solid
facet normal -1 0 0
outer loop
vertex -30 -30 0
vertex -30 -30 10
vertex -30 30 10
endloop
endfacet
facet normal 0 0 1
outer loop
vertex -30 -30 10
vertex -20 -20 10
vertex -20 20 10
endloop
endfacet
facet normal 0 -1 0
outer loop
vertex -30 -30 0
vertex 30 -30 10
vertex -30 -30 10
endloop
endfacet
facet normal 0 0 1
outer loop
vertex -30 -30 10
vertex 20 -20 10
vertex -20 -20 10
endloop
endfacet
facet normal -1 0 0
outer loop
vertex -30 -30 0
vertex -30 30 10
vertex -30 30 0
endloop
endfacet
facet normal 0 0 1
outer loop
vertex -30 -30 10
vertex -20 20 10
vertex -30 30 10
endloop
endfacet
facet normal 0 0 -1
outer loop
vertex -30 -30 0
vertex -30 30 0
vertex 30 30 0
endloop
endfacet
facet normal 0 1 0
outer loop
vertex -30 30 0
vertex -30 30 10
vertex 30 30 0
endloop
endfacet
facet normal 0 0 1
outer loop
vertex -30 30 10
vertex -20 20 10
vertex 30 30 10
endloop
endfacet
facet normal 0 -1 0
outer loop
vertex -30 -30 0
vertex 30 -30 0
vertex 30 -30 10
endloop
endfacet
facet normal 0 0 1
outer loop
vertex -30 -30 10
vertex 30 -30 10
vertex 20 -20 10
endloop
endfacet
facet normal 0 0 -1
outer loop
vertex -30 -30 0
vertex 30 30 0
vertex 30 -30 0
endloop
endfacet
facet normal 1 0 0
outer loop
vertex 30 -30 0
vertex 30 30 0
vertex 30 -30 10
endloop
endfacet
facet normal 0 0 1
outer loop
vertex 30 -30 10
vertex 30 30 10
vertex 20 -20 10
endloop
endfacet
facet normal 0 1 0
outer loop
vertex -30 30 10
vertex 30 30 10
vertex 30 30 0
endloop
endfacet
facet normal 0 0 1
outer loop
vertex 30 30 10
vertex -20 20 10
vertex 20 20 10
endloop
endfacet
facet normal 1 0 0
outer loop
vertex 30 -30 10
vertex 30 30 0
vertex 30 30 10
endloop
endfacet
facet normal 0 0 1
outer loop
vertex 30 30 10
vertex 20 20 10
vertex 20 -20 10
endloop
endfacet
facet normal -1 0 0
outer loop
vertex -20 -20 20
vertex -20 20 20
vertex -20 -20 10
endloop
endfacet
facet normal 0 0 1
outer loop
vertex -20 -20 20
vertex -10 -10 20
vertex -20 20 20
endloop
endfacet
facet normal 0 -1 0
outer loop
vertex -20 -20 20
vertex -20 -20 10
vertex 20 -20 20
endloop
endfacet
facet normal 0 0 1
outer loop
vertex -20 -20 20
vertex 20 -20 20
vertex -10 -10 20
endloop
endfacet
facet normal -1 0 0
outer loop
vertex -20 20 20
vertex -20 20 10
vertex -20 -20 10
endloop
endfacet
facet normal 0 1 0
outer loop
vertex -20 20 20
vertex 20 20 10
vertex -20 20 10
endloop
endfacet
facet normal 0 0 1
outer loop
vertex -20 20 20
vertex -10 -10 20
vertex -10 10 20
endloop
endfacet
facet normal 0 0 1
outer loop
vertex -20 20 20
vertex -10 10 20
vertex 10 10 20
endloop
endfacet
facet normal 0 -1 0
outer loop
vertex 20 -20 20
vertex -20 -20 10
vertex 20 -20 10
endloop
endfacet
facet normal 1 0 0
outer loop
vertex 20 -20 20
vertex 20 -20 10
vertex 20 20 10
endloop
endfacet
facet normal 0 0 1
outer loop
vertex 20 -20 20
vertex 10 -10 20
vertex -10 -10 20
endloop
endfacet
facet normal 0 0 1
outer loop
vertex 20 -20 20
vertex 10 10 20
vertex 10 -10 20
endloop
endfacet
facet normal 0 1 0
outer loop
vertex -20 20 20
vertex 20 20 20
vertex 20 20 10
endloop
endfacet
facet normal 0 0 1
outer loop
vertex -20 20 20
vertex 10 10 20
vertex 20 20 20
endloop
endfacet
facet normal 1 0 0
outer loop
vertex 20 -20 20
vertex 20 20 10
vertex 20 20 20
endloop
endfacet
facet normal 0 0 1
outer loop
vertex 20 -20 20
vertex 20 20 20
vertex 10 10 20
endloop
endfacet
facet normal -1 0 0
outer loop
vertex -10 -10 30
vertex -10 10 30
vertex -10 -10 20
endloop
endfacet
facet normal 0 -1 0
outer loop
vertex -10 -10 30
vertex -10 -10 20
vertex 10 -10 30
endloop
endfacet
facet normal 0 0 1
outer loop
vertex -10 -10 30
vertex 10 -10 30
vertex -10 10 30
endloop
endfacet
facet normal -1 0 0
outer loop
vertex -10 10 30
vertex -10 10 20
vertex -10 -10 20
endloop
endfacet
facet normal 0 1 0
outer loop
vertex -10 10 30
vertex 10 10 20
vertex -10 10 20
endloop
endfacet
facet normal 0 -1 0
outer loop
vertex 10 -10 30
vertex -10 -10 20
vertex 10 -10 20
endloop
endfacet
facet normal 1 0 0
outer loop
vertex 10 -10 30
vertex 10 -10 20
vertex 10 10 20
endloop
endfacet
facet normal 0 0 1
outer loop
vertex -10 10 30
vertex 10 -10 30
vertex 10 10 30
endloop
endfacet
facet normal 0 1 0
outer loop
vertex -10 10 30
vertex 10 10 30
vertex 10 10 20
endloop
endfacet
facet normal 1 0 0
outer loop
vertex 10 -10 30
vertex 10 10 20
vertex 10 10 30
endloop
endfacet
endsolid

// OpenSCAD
union() {
    translate([0, 0, 5])  cube([60, 60, 10], center=true);
    translate([0, 0, 15]) cube([40, 40, 10], center=true);
    translate([0, 0, 25]) cube([20, 20, 10], center=true);
}
